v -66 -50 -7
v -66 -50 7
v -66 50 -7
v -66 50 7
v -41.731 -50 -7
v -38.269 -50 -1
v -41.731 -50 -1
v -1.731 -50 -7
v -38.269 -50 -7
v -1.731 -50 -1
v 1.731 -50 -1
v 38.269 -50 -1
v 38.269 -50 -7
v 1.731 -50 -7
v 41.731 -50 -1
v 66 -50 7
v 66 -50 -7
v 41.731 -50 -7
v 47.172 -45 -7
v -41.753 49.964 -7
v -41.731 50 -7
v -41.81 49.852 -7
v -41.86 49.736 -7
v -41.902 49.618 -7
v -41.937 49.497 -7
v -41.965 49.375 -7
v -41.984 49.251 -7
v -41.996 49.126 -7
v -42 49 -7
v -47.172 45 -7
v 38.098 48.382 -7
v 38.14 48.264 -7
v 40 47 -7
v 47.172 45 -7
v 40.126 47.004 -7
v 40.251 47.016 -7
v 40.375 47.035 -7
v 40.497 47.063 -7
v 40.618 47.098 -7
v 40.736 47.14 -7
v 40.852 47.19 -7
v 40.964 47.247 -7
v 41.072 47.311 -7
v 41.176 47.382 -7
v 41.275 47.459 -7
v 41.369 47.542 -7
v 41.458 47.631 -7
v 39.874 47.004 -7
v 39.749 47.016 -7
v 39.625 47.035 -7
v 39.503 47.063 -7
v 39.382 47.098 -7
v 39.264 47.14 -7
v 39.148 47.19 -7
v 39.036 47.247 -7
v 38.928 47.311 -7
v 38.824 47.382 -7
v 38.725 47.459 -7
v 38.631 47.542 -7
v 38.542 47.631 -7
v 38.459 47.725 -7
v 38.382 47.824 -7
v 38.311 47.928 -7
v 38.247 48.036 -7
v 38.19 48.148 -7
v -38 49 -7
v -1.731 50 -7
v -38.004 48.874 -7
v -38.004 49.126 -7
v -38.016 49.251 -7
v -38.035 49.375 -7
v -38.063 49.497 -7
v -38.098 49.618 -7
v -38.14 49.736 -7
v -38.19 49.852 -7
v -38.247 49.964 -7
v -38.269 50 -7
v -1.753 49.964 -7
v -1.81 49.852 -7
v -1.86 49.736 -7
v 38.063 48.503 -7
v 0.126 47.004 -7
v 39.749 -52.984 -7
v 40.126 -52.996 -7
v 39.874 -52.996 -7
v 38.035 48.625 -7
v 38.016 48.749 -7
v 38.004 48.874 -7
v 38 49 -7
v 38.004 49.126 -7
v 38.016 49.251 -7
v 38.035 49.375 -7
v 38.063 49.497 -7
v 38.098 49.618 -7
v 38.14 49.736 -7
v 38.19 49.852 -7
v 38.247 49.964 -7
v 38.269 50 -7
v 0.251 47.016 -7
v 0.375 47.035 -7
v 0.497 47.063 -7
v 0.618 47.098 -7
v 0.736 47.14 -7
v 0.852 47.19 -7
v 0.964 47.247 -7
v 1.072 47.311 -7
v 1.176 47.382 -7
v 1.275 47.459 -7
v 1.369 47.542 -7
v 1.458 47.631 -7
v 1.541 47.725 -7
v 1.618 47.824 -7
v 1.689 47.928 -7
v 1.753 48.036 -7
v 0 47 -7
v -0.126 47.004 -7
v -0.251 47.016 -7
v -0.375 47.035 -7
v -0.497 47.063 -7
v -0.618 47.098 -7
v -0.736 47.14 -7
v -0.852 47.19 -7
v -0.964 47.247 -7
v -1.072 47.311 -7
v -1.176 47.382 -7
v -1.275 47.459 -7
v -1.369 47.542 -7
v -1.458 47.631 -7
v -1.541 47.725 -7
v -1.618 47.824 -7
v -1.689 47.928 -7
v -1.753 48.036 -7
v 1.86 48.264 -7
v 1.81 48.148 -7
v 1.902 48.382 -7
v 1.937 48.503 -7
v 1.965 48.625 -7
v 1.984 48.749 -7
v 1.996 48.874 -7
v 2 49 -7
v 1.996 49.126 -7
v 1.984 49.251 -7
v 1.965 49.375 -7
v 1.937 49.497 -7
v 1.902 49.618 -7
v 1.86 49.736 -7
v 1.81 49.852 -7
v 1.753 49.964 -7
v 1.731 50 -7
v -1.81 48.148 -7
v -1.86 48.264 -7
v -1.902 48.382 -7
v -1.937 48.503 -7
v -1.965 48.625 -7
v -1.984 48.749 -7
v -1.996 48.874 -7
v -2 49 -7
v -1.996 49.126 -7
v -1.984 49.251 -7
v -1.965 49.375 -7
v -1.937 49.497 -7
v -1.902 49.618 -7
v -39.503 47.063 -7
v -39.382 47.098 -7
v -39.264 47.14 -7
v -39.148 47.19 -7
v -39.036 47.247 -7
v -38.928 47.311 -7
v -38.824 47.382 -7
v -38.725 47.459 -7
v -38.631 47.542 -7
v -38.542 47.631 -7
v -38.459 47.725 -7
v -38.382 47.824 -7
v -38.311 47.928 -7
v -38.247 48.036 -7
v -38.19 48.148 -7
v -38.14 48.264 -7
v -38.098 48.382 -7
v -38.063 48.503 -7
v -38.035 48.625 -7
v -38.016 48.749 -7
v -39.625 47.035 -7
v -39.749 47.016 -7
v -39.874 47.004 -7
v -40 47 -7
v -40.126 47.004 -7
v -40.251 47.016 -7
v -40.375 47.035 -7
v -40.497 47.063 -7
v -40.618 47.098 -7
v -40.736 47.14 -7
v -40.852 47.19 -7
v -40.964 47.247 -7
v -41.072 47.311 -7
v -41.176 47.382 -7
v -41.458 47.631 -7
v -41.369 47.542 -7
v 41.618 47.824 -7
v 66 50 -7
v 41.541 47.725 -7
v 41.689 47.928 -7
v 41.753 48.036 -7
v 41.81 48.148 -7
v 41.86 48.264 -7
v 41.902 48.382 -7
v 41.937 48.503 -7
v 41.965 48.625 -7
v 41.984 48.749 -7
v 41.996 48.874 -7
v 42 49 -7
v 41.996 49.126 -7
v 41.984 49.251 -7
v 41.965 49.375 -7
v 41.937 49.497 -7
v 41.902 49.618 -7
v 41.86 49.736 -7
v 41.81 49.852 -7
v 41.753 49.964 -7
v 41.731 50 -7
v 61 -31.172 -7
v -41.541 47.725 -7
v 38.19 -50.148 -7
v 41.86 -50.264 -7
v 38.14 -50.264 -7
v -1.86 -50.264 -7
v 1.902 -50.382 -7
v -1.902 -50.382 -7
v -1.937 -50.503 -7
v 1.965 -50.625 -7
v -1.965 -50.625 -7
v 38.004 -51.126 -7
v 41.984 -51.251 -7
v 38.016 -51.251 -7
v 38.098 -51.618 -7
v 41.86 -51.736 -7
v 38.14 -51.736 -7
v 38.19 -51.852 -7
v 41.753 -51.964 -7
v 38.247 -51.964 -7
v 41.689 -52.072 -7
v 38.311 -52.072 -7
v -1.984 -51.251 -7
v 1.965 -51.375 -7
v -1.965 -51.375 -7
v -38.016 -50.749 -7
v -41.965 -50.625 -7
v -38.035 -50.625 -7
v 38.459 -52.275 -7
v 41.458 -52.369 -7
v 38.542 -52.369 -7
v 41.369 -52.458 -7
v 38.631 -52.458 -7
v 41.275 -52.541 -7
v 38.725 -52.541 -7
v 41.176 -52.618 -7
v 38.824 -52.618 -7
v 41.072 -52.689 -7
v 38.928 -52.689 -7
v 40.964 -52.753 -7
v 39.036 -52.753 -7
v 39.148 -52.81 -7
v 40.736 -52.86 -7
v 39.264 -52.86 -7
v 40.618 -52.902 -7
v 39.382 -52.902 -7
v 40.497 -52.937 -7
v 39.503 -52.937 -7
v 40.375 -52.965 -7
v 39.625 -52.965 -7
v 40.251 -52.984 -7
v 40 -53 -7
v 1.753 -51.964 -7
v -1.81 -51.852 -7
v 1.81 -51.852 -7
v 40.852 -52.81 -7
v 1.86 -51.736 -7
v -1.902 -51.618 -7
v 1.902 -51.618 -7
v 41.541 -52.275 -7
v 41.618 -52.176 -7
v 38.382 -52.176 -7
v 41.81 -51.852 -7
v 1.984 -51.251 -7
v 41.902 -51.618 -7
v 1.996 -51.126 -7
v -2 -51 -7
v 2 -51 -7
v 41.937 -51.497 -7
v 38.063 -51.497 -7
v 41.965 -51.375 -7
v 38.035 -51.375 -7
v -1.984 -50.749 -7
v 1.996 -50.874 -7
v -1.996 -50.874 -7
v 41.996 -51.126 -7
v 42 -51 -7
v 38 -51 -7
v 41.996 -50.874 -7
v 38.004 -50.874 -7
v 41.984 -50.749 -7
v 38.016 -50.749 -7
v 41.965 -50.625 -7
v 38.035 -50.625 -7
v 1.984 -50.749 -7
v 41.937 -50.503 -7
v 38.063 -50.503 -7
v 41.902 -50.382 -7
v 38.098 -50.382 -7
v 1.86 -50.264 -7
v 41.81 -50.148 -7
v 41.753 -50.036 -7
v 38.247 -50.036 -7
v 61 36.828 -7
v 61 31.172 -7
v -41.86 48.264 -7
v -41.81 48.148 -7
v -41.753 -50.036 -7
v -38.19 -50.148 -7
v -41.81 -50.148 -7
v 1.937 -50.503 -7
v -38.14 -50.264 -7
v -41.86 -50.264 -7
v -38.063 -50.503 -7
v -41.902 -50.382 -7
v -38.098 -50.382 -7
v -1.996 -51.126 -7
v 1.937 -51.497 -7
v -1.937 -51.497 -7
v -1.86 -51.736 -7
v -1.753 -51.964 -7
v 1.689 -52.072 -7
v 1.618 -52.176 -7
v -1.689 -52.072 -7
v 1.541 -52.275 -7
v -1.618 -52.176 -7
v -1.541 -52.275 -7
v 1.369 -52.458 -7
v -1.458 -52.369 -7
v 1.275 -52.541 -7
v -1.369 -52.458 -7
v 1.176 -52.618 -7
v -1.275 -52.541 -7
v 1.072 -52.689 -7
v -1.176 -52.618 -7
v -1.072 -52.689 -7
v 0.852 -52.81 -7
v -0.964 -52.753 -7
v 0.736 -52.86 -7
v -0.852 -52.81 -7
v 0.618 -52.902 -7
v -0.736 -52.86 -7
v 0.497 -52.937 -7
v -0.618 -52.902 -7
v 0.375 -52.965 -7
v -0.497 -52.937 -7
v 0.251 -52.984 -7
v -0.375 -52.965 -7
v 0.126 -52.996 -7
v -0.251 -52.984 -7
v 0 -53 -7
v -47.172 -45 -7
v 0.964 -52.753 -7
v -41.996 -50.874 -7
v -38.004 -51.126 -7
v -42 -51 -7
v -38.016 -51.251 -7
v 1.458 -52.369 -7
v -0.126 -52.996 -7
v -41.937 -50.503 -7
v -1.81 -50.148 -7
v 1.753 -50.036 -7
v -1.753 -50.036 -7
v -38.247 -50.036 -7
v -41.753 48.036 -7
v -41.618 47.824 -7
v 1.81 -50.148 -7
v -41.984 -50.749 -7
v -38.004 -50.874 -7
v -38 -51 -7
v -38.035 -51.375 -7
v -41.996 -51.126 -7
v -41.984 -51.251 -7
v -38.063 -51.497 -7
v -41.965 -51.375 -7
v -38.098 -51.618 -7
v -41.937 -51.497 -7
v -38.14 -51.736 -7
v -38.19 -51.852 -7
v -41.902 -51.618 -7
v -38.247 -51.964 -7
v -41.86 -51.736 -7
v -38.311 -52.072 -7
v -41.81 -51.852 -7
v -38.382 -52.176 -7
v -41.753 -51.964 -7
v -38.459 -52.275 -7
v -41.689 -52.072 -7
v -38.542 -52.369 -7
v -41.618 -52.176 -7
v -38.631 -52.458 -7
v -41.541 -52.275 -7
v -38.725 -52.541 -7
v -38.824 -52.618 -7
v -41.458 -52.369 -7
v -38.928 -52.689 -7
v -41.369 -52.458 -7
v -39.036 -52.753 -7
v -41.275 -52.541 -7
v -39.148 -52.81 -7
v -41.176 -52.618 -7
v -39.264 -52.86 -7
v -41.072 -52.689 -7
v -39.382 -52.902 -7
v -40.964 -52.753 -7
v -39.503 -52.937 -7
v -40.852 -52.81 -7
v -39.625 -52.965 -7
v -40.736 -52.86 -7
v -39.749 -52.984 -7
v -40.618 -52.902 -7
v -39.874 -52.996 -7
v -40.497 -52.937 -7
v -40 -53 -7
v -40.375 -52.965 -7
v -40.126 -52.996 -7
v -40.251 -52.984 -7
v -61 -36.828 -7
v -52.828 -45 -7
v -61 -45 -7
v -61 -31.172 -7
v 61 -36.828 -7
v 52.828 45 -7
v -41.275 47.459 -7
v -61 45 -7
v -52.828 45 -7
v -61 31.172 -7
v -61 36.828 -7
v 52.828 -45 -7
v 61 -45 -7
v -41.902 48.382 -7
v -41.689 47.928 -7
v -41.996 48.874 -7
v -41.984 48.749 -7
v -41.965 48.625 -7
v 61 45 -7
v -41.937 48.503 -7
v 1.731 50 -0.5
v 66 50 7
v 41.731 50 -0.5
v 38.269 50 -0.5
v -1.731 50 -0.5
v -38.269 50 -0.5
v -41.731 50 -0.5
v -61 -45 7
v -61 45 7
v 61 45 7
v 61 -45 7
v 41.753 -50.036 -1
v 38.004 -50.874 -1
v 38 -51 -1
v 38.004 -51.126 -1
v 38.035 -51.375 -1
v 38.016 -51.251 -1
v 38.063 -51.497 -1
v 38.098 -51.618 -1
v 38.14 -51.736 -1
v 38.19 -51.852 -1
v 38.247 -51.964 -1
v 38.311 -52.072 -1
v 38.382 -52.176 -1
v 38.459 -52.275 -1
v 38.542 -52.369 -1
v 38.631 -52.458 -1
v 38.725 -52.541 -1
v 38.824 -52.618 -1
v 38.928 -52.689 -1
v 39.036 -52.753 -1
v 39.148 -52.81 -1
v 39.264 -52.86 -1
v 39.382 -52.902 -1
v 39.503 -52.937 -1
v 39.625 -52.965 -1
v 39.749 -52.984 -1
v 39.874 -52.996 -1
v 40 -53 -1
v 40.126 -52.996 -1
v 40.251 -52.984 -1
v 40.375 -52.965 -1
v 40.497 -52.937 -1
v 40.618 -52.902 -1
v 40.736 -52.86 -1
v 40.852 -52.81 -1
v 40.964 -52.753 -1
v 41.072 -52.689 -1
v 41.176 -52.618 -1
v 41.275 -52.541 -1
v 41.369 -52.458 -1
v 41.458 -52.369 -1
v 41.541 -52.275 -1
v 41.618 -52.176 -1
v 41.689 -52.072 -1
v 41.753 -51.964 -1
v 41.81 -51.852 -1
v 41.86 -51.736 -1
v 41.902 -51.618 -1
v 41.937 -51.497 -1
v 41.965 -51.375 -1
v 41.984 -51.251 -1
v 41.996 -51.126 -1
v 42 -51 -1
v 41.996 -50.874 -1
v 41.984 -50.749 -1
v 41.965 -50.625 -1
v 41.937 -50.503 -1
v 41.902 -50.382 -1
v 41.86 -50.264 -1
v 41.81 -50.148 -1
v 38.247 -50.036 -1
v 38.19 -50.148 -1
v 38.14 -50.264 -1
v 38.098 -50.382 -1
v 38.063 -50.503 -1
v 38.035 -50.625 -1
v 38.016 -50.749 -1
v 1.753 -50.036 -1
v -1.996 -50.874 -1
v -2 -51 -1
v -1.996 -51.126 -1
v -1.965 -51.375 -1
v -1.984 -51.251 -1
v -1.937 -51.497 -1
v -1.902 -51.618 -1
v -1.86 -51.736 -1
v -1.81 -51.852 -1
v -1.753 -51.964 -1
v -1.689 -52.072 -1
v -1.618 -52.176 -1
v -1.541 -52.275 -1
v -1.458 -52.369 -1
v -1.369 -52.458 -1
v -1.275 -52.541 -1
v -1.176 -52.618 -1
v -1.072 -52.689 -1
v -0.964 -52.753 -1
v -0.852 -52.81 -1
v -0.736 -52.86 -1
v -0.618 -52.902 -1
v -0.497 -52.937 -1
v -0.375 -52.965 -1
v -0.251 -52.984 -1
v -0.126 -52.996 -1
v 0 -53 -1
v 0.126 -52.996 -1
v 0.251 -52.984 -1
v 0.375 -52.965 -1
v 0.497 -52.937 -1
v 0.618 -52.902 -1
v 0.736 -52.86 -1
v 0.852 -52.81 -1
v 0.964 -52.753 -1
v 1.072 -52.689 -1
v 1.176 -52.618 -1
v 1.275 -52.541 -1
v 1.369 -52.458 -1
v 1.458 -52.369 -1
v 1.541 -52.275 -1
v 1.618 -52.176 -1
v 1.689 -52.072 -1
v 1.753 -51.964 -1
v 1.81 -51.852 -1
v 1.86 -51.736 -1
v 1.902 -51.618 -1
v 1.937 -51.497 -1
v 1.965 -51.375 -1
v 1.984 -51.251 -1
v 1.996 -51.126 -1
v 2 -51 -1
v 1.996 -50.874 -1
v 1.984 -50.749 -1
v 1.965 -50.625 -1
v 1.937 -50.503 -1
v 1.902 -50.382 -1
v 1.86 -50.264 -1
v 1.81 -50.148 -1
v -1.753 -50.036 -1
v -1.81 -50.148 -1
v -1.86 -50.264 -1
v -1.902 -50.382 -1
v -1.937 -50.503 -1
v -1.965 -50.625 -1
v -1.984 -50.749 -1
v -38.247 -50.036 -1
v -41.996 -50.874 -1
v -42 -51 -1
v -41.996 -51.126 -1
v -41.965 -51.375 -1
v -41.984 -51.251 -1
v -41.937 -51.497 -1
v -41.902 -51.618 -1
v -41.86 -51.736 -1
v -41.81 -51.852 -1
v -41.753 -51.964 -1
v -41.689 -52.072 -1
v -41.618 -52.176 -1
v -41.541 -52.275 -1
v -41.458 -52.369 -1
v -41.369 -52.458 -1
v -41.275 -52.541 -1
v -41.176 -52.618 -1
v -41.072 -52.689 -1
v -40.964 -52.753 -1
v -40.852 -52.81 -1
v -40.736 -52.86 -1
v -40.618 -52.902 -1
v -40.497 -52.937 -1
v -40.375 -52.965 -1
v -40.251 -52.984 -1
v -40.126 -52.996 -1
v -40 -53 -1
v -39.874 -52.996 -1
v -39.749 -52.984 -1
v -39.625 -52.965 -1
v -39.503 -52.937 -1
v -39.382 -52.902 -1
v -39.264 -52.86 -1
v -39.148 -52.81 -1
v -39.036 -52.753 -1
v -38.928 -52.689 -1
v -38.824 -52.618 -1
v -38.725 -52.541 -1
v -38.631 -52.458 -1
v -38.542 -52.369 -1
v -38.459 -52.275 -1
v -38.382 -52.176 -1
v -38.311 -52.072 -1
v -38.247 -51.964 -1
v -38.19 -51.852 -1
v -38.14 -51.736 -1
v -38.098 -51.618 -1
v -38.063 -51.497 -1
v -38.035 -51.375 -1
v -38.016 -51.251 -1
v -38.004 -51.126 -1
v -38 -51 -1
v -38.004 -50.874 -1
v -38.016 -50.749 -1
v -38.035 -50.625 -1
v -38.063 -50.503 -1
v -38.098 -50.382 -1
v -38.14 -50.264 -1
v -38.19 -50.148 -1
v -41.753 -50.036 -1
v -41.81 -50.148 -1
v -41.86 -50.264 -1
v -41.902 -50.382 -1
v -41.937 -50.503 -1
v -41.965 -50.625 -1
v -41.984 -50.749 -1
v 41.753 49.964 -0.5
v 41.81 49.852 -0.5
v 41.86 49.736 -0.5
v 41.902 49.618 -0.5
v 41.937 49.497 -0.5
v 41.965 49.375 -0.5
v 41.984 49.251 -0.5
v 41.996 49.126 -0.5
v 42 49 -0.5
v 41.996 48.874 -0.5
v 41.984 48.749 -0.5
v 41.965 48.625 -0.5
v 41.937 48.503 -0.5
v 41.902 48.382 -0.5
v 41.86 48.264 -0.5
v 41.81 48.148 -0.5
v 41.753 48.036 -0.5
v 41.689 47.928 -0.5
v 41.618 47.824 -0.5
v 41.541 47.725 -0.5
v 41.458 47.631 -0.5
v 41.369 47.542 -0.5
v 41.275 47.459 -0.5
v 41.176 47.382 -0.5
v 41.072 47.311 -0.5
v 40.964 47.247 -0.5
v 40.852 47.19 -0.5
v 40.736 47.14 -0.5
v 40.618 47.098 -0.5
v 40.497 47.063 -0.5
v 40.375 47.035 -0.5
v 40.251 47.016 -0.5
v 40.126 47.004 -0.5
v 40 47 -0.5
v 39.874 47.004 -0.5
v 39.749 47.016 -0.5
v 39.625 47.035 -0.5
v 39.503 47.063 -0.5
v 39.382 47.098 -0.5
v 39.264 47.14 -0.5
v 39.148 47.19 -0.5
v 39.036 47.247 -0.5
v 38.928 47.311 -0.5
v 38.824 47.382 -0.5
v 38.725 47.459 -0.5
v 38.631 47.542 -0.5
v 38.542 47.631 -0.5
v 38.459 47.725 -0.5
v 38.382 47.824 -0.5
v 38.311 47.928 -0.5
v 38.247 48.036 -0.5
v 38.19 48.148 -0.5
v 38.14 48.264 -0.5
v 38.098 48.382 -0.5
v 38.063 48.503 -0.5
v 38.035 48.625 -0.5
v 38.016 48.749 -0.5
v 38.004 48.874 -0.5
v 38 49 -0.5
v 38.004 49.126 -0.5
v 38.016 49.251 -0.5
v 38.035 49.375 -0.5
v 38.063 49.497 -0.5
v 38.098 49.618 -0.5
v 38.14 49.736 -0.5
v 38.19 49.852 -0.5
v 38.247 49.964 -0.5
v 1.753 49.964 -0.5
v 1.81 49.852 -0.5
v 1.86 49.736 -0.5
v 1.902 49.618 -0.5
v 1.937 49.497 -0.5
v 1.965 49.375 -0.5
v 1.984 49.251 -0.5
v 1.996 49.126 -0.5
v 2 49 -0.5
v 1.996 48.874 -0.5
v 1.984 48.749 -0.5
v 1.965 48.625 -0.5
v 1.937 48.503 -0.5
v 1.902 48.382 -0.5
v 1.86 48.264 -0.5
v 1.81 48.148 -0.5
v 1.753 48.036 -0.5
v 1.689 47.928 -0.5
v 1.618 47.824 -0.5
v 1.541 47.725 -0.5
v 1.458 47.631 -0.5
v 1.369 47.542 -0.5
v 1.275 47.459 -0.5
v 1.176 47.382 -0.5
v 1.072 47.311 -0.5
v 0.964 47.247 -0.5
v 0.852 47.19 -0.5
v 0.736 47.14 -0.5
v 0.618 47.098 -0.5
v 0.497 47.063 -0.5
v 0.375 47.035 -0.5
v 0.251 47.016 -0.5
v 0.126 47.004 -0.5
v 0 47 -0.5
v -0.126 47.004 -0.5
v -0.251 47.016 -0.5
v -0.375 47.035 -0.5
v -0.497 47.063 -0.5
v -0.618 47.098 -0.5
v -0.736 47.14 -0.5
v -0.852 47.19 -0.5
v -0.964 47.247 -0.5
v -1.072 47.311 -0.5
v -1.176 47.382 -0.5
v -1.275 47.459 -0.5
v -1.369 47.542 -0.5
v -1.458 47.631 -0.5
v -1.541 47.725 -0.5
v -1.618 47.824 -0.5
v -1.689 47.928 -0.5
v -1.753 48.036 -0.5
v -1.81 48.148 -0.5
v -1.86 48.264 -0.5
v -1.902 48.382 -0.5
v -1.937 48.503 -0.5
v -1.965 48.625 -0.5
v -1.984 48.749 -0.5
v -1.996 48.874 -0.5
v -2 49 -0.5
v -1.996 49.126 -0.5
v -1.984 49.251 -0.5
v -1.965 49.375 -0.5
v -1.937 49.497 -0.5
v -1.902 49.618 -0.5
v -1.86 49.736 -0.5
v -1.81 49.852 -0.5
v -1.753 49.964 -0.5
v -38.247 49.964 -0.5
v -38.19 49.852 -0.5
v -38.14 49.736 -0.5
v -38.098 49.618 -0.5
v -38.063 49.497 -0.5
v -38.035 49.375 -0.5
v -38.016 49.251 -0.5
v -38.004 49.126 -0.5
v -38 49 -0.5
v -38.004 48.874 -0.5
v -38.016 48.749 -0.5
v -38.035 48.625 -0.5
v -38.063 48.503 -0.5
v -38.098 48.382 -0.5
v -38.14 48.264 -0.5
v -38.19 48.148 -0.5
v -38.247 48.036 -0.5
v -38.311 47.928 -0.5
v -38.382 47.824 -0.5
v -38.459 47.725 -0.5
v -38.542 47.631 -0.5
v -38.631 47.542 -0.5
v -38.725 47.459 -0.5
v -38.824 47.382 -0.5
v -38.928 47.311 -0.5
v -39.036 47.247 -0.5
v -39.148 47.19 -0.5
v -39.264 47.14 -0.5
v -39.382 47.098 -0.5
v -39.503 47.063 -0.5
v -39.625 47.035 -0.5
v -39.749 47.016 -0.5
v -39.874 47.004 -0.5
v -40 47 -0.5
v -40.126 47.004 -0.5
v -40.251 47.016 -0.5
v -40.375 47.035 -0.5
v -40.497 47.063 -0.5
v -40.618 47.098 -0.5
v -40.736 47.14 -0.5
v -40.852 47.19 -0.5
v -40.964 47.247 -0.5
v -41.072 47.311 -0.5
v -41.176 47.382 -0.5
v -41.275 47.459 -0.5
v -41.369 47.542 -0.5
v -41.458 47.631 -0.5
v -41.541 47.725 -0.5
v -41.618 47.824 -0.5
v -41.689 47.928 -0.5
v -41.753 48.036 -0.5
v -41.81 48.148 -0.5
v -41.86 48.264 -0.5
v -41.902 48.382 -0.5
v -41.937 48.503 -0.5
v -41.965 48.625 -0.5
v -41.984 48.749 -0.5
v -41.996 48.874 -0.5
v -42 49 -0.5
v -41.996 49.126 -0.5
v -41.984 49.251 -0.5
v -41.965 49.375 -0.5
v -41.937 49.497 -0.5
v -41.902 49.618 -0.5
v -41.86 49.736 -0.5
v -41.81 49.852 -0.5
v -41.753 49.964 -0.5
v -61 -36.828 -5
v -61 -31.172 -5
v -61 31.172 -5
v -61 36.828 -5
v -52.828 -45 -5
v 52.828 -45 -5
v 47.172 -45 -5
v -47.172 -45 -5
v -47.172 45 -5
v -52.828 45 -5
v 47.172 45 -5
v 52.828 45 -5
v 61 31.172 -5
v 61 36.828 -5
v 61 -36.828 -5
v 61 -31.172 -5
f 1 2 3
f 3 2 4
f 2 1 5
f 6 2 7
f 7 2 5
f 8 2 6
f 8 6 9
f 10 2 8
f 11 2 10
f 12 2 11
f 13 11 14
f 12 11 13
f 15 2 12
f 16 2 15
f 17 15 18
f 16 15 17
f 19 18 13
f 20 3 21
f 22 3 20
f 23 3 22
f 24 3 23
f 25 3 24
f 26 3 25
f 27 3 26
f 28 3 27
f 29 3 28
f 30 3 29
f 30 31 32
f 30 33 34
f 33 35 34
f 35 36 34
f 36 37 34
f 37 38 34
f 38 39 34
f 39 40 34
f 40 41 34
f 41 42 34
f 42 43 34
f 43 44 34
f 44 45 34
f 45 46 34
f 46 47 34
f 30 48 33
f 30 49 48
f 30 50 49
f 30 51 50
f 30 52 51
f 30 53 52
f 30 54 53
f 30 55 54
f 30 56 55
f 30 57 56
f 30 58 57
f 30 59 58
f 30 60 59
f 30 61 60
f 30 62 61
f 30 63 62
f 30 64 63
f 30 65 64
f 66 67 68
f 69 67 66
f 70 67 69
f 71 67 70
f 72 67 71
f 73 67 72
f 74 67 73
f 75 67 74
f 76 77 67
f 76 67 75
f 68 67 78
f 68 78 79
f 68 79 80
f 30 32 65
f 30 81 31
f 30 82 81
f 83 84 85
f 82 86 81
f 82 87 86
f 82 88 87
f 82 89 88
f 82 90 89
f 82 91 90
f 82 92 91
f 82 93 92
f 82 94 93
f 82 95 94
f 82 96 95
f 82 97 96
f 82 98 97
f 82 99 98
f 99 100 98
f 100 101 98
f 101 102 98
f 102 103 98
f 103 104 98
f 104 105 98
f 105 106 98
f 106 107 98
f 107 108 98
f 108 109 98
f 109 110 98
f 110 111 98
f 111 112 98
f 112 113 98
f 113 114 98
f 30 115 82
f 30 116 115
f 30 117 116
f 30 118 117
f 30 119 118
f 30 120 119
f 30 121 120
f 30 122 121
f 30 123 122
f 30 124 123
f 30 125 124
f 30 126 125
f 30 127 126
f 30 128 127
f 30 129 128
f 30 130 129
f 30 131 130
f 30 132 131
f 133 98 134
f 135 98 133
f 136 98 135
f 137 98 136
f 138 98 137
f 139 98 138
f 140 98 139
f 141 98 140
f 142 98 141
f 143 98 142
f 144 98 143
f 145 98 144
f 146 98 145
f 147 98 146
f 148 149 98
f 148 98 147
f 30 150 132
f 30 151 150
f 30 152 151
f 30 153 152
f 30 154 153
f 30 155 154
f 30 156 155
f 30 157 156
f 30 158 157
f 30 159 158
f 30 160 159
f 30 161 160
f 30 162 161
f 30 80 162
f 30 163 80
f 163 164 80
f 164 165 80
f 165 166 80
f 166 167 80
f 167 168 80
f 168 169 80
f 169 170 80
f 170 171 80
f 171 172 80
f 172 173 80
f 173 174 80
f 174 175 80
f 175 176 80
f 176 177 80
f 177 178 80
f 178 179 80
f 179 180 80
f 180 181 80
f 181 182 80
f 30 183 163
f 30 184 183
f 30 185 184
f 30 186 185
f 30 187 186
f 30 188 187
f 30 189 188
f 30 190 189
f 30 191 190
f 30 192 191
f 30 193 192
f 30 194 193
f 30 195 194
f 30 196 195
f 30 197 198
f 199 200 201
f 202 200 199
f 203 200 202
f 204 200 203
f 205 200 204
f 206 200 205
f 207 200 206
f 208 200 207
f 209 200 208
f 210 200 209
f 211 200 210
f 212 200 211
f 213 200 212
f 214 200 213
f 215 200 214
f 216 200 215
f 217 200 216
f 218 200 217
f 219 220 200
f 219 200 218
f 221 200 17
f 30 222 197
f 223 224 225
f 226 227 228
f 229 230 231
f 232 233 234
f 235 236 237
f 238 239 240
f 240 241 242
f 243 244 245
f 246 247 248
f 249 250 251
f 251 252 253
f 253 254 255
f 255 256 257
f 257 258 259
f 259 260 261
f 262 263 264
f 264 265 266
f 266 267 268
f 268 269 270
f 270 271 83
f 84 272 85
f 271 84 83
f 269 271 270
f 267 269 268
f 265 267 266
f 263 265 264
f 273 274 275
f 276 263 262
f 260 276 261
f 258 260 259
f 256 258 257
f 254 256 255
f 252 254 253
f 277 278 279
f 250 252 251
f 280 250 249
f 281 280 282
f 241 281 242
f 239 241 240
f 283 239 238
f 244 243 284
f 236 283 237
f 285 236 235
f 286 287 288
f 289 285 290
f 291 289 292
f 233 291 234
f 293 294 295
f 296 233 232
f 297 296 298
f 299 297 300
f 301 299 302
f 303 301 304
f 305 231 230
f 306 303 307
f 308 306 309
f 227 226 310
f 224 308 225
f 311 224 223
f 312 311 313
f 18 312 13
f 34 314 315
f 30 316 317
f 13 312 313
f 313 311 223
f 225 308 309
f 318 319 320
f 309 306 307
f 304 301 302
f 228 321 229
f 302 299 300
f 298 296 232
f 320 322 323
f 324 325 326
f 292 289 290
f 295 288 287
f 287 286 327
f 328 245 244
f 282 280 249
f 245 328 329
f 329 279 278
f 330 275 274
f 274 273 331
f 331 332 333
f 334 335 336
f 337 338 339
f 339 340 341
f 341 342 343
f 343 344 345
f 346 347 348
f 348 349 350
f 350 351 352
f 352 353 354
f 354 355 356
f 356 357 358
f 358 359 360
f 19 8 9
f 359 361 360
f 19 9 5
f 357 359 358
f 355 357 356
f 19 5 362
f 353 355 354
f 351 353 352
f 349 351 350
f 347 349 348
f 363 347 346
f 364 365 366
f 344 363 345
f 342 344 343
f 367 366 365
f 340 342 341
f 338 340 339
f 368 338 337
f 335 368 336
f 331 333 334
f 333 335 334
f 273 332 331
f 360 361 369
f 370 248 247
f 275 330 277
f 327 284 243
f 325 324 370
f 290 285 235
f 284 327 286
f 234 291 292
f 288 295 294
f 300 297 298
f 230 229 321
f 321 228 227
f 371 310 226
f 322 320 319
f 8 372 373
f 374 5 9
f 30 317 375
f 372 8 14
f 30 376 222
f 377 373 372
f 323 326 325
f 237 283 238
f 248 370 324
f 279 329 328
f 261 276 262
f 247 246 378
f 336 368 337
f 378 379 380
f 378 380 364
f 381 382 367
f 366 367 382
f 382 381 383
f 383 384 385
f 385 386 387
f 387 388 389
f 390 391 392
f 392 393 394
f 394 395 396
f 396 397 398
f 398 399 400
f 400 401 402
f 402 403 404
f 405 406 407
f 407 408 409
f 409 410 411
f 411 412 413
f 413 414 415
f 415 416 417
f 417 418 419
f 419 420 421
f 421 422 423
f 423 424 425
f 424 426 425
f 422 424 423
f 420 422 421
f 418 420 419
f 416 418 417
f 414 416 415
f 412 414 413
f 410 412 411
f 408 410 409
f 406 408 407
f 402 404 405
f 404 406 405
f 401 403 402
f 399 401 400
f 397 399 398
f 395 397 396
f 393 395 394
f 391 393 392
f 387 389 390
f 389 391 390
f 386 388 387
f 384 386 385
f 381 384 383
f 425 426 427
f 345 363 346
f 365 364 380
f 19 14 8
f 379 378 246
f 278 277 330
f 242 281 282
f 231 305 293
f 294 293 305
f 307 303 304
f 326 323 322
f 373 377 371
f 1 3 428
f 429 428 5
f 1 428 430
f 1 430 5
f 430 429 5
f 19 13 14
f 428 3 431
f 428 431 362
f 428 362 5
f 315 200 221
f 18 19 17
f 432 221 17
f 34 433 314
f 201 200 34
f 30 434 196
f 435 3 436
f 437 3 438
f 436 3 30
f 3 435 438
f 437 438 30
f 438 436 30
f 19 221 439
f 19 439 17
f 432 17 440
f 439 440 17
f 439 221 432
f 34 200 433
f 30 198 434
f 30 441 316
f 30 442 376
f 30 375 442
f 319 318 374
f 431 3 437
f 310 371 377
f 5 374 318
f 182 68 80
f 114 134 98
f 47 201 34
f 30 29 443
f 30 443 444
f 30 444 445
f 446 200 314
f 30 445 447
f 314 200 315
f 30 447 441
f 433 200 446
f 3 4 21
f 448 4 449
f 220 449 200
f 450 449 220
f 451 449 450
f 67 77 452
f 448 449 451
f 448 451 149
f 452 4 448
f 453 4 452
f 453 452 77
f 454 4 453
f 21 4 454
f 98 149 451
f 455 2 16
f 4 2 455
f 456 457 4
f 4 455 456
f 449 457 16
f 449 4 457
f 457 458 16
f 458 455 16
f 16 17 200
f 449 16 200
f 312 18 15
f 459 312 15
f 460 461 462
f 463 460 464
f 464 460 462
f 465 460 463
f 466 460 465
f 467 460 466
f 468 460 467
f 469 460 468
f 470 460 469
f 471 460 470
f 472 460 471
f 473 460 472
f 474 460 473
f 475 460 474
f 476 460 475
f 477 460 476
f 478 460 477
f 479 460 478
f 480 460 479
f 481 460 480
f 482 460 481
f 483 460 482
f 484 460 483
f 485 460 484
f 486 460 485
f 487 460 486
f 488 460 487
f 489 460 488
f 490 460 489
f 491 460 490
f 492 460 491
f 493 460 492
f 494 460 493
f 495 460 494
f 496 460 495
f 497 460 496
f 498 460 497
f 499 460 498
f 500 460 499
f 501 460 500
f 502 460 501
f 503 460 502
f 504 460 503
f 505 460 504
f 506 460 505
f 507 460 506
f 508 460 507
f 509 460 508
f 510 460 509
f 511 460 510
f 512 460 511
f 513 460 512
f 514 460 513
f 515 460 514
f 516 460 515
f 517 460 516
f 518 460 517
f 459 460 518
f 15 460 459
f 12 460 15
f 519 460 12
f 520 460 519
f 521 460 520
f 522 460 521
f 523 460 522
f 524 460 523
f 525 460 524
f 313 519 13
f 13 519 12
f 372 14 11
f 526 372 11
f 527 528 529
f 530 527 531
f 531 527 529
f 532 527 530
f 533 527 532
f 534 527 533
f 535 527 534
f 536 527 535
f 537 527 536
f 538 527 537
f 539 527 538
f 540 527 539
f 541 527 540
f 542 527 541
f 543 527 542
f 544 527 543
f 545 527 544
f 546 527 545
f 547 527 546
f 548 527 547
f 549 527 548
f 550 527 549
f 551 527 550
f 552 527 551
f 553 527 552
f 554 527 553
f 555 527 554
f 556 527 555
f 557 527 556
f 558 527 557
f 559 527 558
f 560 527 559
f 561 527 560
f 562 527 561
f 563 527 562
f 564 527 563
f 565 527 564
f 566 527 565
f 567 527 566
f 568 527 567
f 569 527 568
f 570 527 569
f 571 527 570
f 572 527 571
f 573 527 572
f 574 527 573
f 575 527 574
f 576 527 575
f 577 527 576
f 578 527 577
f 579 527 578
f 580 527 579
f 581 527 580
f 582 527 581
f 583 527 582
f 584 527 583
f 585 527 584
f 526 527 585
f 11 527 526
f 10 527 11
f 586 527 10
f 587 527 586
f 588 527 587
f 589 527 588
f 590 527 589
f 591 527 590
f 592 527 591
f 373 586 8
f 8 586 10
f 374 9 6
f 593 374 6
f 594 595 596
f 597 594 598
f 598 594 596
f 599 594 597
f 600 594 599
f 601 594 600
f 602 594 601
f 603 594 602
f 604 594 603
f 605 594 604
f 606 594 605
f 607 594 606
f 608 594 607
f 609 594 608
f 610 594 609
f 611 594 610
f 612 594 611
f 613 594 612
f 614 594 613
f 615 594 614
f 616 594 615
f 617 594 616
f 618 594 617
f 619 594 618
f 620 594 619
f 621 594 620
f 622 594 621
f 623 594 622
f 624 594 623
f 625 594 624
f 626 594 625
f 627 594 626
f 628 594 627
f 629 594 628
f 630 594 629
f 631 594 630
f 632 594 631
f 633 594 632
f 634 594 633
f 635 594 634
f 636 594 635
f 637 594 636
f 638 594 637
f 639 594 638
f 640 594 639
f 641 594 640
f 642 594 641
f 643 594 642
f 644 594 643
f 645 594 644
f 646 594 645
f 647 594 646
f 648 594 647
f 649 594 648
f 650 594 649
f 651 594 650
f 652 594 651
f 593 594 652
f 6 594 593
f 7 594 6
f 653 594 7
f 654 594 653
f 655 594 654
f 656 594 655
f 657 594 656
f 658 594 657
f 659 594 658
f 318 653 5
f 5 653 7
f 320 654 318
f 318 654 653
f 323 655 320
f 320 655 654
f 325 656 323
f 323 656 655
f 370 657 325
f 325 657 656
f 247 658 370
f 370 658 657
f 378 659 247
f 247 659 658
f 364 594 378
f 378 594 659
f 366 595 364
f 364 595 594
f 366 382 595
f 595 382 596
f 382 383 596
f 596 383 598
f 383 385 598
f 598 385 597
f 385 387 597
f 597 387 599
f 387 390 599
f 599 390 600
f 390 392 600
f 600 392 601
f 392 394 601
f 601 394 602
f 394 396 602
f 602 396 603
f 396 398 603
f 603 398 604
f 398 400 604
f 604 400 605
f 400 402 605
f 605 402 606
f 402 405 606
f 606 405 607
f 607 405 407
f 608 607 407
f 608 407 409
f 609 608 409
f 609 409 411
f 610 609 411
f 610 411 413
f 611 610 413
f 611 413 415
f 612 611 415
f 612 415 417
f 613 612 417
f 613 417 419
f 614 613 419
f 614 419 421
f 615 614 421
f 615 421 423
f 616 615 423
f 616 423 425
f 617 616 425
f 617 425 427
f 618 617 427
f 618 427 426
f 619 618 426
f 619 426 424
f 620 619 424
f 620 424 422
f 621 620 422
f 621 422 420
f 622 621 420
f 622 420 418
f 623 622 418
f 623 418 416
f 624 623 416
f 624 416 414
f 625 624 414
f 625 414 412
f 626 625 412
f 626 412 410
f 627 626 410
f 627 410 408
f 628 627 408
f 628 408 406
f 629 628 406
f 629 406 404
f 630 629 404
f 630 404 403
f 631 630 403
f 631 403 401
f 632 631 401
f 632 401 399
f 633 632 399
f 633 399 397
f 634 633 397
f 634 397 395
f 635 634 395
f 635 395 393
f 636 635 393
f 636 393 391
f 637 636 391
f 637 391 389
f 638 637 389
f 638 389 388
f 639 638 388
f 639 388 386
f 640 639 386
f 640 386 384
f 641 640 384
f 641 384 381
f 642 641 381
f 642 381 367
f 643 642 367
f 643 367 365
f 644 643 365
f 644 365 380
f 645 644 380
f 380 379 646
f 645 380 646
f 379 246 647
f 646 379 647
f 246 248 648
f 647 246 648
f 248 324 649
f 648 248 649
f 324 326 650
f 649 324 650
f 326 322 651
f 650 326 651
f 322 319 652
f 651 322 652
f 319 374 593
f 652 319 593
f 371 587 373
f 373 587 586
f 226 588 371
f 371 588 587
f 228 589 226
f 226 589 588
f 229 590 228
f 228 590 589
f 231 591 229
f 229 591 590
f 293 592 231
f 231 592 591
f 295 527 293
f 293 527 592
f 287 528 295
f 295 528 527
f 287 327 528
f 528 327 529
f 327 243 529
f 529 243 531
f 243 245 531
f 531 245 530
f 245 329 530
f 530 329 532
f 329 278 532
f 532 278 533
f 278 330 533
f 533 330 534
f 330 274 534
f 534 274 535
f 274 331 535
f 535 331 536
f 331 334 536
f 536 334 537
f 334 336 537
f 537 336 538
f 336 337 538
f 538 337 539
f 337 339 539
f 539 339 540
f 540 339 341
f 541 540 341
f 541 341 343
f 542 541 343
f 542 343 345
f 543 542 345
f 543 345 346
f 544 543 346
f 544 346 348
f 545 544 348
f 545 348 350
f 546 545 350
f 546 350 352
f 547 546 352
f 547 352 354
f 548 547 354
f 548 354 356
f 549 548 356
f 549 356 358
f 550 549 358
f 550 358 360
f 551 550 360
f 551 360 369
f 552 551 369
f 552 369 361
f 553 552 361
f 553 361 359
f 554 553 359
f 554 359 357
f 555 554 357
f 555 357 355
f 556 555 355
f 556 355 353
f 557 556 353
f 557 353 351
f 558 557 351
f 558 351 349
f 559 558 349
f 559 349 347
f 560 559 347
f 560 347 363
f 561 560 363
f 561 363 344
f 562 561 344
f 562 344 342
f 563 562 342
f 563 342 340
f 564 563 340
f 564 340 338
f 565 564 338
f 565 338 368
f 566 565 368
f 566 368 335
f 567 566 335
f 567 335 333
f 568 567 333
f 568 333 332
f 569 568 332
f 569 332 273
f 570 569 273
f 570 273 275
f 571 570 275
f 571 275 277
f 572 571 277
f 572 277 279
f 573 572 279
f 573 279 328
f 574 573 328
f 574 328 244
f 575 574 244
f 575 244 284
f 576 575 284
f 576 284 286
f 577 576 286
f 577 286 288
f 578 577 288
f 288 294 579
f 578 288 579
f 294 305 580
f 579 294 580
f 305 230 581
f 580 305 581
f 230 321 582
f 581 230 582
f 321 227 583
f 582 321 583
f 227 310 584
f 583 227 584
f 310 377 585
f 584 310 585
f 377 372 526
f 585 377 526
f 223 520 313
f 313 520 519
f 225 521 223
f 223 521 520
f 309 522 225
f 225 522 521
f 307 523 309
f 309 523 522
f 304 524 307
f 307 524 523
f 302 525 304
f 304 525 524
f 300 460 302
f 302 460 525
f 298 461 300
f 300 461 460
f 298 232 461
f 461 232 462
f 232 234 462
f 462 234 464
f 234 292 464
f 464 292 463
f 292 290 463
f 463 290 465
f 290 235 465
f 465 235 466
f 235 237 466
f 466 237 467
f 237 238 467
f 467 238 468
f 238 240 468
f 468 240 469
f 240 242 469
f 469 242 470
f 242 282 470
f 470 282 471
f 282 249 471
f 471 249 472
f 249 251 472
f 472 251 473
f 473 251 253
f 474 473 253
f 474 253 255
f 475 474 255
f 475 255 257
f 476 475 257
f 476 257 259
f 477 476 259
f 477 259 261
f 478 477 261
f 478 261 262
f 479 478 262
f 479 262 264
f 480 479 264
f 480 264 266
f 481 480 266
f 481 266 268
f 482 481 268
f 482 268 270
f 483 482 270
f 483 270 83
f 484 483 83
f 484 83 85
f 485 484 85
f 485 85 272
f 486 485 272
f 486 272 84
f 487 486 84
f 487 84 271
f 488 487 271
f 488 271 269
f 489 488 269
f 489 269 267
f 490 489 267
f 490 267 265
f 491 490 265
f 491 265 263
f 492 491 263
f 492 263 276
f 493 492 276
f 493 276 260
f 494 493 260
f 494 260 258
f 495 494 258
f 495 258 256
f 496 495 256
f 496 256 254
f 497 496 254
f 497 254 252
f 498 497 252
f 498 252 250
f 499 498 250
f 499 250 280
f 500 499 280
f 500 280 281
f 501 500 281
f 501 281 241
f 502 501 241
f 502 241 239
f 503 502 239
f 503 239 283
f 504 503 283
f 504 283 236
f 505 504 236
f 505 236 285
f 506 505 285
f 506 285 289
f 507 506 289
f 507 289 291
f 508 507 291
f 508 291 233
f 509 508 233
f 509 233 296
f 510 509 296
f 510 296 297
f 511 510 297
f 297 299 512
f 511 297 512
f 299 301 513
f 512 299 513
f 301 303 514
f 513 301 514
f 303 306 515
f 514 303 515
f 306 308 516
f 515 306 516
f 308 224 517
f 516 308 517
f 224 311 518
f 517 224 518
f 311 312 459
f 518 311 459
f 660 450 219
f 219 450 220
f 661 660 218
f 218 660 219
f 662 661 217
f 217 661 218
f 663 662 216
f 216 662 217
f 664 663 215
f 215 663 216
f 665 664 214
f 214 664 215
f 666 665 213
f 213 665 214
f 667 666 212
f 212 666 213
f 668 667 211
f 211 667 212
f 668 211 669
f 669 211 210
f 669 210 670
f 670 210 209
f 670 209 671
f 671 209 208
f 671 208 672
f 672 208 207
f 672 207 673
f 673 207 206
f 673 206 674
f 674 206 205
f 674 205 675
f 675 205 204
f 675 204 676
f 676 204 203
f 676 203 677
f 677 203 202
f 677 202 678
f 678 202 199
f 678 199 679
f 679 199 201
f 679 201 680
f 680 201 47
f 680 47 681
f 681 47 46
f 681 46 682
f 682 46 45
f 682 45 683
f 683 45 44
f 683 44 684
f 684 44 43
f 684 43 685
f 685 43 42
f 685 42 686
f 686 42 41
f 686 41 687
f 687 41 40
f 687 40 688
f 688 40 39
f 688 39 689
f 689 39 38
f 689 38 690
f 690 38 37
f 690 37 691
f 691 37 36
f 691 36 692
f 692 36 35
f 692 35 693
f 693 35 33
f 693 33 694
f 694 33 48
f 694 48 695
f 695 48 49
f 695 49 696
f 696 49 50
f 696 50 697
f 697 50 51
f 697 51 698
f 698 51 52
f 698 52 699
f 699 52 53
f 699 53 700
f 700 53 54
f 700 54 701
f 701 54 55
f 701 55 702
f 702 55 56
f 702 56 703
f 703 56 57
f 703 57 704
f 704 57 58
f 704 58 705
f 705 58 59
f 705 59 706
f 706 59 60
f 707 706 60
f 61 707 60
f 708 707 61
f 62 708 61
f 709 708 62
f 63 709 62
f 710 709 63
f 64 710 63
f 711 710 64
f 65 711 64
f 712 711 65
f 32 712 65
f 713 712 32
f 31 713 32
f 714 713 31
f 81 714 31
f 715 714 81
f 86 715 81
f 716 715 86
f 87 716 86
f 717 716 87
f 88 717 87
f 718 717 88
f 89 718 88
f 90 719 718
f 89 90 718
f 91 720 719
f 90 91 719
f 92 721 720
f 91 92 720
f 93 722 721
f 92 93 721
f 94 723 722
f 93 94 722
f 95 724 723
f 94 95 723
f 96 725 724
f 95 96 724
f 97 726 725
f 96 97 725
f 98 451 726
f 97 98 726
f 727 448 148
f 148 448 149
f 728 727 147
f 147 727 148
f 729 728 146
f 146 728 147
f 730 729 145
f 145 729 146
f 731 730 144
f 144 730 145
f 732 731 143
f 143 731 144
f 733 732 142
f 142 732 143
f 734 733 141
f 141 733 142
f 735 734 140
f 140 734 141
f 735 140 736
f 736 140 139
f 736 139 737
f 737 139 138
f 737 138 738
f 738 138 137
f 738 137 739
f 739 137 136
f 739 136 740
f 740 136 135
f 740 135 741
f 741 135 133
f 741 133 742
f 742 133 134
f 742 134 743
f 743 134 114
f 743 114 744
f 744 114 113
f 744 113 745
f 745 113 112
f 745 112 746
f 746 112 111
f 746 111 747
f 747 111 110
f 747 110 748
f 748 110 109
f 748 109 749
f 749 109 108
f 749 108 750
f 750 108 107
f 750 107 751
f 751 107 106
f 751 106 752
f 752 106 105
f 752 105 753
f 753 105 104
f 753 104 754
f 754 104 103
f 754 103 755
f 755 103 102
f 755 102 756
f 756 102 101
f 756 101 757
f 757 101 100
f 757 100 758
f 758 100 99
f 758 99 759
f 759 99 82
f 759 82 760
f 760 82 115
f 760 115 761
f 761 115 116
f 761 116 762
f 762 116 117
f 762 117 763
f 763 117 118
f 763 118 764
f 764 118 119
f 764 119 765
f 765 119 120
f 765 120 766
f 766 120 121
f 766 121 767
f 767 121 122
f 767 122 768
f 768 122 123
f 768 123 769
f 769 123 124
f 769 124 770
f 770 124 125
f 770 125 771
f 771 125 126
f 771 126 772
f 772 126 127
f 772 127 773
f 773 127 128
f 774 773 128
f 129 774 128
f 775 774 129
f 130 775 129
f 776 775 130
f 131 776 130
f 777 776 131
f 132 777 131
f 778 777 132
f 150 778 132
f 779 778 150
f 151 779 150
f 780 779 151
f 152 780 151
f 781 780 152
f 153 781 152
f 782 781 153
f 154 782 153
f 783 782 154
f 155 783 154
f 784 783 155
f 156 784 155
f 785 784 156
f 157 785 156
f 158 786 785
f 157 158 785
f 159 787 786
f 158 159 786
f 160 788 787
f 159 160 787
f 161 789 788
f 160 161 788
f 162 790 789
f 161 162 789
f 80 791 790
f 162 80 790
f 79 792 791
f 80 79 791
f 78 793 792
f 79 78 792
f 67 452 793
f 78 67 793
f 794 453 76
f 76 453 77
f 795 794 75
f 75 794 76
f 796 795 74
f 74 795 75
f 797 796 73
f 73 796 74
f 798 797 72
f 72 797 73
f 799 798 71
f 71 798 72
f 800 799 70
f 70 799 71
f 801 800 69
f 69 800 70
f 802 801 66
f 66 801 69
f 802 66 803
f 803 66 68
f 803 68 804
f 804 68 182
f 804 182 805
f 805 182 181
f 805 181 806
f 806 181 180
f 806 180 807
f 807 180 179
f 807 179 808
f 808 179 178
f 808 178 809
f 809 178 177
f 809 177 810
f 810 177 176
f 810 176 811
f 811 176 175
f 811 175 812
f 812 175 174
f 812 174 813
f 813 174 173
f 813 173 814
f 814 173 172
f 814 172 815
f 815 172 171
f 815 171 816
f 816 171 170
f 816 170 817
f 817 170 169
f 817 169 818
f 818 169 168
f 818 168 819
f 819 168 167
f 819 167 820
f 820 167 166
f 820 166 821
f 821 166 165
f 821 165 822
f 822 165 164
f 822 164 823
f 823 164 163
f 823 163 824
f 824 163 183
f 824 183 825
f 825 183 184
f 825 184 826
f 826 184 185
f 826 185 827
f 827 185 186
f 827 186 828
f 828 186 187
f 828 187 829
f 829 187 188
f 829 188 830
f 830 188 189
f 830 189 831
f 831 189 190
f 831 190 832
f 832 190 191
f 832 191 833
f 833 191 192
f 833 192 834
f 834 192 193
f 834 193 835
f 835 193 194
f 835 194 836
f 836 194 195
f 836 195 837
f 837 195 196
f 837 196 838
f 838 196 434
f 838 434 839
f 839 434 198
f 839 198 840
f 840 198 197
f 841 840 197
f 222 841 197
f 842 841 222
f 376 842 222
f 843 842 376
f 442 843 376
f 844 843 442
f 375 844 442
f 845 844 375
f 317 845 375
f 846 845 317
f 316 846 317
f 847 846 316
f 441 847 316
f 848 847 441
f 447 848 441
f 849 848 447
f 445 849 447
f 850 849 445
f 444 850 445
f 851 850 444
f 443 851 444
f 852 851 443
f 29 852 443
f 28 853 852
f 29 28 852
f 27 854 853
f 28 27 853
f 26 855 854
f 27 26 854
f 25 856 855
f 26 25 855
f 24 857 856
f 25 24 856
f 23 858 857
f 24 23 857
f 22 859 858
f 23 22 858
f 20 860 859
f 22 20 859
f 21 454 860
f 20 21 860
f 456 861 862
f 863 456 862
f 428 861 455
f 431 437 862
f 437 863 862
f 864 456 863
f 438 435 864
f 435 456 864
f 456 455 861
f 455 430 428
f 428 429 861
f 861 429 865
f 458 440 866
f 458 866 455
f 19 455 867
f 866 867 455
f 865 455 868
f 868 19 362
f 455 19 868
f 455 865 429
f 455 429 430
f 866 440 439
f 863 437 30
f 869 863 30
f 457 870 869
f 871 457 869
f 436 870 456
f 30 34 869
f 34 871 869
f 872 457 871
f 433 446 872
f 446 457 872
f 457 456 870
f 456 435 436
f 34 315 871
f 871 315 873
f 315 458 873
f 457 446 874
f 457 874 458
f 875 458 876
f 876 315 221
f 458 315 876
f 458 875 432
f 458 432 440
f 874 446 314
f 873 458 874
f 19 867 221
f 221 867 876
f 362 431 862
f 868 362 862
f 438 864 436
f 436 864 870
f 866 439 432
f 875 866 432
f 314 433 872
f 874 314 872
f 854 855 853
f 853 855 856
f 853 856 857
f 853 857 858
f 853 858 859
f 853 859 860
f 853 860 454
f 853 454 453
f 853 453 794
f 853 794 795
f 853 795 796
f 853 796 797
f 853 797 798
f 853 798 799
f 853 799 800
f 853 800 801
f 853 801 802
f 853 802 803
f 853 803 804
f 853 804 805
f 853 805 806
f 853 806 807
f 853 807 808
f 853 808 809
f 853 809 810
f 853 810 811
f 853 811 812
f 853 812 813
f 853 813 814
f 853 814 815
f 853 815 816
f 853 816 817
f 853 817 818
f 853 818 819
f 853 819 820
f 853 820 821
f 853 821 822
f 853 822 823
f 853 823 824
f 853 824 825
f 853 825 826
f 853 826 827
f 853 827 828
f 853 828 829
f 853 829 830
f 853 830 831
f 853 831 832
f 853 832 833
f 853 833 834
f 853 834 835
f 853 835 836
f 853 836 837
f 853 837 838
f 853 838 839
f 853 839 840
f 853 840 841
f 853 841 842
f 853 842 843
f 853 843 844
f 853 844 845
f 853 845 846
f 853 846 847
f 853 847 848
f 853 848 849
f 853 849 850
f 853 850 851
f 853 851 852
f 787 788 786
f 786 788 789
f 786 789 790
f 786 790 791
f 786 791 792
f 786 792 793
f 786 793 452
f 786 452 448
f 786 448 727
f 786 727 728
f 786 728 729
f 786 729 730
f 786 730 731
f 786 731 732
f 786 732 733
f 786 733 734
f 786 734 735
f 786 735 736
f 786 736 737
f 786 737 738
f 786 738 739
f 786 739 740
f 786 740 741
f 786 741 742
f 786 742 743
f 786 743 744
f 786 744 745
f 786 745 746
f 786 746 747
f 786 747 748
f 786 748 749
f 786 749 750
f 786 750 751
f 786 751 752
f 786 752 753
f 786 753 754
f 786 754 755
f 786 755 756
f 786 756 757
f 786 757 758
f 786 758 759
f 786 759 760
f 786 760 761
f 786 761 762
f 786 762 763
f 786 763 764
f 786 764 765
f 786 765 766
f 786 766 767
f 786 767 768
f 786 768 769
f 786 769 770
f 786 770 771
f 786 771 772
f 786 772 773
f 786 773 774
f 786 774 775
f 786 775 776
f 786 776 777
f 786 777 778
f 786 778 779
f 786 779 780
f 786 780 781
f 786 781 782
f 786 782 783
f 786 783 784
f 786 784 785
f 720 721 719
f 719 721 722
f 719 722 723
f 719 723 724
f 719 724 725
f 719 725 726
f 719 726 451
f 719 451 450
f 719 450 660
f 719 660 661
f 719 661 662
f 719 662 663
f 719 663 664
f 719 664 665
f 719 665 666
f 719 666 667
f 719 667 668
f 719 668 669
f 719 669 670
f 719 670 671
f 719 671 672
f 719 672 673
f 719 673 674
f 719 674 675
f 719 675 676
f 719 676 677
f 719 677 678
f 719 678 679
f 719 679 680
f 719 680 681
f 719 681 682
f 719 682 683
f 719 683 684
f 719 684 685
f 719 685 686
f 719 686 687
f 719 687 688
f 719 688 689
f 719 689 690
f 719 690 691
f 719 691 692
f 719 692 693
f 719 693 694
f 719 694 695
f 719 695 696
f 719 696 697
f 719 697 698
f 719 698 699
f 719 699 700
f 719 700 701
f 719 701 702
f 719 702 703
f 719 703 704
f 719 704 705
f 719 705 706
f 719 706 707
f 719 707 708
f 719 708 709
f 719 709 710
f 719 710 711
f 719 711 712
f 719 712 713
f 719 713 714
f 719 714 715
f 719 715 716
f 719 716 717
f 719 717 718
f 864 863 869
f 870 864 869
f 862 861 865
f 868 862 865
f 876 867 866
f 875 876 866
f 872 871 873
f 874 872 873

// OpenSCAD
$fn = 100;
module cubo(x,y,z,c=true){
	cube([x,y,z],center=c);
}
difference(){
	cubo(132,100,14);
	cubo(122,90,20);
	translate([0,49,-4])
		cylinder(r=2,h=7,center=true);
	translate([40,49,-4])
		cylinder(r=2,h=7,center=true);
	translate([-40,49,-4])
		cylinder(r=2,h=7,center=true);
}
translate([0,-51,-4])
	cylinder(r=2,h=6,center=true);
translate([40,-51,-4])
	cylinder(r=2,h=6,center=true);
translate([-40,-51,-4])
	cylinder(r=2,h=6,center=true);

translate([-55.5,39.5,-6])
	rotate([0,0,45])
		cubo(20,4,2);
translate([55.5,39.5,-6])
	rotate([0,0,-45])
		cubo(20,4,2);
translate([-55.5,-39.5,-6])
	rotate([0,0,-45])
		cubo(20,4,2);
translate([55.5,-39.5,-6])
	rotate([0,0,45])
		cubo(20,4,2);
